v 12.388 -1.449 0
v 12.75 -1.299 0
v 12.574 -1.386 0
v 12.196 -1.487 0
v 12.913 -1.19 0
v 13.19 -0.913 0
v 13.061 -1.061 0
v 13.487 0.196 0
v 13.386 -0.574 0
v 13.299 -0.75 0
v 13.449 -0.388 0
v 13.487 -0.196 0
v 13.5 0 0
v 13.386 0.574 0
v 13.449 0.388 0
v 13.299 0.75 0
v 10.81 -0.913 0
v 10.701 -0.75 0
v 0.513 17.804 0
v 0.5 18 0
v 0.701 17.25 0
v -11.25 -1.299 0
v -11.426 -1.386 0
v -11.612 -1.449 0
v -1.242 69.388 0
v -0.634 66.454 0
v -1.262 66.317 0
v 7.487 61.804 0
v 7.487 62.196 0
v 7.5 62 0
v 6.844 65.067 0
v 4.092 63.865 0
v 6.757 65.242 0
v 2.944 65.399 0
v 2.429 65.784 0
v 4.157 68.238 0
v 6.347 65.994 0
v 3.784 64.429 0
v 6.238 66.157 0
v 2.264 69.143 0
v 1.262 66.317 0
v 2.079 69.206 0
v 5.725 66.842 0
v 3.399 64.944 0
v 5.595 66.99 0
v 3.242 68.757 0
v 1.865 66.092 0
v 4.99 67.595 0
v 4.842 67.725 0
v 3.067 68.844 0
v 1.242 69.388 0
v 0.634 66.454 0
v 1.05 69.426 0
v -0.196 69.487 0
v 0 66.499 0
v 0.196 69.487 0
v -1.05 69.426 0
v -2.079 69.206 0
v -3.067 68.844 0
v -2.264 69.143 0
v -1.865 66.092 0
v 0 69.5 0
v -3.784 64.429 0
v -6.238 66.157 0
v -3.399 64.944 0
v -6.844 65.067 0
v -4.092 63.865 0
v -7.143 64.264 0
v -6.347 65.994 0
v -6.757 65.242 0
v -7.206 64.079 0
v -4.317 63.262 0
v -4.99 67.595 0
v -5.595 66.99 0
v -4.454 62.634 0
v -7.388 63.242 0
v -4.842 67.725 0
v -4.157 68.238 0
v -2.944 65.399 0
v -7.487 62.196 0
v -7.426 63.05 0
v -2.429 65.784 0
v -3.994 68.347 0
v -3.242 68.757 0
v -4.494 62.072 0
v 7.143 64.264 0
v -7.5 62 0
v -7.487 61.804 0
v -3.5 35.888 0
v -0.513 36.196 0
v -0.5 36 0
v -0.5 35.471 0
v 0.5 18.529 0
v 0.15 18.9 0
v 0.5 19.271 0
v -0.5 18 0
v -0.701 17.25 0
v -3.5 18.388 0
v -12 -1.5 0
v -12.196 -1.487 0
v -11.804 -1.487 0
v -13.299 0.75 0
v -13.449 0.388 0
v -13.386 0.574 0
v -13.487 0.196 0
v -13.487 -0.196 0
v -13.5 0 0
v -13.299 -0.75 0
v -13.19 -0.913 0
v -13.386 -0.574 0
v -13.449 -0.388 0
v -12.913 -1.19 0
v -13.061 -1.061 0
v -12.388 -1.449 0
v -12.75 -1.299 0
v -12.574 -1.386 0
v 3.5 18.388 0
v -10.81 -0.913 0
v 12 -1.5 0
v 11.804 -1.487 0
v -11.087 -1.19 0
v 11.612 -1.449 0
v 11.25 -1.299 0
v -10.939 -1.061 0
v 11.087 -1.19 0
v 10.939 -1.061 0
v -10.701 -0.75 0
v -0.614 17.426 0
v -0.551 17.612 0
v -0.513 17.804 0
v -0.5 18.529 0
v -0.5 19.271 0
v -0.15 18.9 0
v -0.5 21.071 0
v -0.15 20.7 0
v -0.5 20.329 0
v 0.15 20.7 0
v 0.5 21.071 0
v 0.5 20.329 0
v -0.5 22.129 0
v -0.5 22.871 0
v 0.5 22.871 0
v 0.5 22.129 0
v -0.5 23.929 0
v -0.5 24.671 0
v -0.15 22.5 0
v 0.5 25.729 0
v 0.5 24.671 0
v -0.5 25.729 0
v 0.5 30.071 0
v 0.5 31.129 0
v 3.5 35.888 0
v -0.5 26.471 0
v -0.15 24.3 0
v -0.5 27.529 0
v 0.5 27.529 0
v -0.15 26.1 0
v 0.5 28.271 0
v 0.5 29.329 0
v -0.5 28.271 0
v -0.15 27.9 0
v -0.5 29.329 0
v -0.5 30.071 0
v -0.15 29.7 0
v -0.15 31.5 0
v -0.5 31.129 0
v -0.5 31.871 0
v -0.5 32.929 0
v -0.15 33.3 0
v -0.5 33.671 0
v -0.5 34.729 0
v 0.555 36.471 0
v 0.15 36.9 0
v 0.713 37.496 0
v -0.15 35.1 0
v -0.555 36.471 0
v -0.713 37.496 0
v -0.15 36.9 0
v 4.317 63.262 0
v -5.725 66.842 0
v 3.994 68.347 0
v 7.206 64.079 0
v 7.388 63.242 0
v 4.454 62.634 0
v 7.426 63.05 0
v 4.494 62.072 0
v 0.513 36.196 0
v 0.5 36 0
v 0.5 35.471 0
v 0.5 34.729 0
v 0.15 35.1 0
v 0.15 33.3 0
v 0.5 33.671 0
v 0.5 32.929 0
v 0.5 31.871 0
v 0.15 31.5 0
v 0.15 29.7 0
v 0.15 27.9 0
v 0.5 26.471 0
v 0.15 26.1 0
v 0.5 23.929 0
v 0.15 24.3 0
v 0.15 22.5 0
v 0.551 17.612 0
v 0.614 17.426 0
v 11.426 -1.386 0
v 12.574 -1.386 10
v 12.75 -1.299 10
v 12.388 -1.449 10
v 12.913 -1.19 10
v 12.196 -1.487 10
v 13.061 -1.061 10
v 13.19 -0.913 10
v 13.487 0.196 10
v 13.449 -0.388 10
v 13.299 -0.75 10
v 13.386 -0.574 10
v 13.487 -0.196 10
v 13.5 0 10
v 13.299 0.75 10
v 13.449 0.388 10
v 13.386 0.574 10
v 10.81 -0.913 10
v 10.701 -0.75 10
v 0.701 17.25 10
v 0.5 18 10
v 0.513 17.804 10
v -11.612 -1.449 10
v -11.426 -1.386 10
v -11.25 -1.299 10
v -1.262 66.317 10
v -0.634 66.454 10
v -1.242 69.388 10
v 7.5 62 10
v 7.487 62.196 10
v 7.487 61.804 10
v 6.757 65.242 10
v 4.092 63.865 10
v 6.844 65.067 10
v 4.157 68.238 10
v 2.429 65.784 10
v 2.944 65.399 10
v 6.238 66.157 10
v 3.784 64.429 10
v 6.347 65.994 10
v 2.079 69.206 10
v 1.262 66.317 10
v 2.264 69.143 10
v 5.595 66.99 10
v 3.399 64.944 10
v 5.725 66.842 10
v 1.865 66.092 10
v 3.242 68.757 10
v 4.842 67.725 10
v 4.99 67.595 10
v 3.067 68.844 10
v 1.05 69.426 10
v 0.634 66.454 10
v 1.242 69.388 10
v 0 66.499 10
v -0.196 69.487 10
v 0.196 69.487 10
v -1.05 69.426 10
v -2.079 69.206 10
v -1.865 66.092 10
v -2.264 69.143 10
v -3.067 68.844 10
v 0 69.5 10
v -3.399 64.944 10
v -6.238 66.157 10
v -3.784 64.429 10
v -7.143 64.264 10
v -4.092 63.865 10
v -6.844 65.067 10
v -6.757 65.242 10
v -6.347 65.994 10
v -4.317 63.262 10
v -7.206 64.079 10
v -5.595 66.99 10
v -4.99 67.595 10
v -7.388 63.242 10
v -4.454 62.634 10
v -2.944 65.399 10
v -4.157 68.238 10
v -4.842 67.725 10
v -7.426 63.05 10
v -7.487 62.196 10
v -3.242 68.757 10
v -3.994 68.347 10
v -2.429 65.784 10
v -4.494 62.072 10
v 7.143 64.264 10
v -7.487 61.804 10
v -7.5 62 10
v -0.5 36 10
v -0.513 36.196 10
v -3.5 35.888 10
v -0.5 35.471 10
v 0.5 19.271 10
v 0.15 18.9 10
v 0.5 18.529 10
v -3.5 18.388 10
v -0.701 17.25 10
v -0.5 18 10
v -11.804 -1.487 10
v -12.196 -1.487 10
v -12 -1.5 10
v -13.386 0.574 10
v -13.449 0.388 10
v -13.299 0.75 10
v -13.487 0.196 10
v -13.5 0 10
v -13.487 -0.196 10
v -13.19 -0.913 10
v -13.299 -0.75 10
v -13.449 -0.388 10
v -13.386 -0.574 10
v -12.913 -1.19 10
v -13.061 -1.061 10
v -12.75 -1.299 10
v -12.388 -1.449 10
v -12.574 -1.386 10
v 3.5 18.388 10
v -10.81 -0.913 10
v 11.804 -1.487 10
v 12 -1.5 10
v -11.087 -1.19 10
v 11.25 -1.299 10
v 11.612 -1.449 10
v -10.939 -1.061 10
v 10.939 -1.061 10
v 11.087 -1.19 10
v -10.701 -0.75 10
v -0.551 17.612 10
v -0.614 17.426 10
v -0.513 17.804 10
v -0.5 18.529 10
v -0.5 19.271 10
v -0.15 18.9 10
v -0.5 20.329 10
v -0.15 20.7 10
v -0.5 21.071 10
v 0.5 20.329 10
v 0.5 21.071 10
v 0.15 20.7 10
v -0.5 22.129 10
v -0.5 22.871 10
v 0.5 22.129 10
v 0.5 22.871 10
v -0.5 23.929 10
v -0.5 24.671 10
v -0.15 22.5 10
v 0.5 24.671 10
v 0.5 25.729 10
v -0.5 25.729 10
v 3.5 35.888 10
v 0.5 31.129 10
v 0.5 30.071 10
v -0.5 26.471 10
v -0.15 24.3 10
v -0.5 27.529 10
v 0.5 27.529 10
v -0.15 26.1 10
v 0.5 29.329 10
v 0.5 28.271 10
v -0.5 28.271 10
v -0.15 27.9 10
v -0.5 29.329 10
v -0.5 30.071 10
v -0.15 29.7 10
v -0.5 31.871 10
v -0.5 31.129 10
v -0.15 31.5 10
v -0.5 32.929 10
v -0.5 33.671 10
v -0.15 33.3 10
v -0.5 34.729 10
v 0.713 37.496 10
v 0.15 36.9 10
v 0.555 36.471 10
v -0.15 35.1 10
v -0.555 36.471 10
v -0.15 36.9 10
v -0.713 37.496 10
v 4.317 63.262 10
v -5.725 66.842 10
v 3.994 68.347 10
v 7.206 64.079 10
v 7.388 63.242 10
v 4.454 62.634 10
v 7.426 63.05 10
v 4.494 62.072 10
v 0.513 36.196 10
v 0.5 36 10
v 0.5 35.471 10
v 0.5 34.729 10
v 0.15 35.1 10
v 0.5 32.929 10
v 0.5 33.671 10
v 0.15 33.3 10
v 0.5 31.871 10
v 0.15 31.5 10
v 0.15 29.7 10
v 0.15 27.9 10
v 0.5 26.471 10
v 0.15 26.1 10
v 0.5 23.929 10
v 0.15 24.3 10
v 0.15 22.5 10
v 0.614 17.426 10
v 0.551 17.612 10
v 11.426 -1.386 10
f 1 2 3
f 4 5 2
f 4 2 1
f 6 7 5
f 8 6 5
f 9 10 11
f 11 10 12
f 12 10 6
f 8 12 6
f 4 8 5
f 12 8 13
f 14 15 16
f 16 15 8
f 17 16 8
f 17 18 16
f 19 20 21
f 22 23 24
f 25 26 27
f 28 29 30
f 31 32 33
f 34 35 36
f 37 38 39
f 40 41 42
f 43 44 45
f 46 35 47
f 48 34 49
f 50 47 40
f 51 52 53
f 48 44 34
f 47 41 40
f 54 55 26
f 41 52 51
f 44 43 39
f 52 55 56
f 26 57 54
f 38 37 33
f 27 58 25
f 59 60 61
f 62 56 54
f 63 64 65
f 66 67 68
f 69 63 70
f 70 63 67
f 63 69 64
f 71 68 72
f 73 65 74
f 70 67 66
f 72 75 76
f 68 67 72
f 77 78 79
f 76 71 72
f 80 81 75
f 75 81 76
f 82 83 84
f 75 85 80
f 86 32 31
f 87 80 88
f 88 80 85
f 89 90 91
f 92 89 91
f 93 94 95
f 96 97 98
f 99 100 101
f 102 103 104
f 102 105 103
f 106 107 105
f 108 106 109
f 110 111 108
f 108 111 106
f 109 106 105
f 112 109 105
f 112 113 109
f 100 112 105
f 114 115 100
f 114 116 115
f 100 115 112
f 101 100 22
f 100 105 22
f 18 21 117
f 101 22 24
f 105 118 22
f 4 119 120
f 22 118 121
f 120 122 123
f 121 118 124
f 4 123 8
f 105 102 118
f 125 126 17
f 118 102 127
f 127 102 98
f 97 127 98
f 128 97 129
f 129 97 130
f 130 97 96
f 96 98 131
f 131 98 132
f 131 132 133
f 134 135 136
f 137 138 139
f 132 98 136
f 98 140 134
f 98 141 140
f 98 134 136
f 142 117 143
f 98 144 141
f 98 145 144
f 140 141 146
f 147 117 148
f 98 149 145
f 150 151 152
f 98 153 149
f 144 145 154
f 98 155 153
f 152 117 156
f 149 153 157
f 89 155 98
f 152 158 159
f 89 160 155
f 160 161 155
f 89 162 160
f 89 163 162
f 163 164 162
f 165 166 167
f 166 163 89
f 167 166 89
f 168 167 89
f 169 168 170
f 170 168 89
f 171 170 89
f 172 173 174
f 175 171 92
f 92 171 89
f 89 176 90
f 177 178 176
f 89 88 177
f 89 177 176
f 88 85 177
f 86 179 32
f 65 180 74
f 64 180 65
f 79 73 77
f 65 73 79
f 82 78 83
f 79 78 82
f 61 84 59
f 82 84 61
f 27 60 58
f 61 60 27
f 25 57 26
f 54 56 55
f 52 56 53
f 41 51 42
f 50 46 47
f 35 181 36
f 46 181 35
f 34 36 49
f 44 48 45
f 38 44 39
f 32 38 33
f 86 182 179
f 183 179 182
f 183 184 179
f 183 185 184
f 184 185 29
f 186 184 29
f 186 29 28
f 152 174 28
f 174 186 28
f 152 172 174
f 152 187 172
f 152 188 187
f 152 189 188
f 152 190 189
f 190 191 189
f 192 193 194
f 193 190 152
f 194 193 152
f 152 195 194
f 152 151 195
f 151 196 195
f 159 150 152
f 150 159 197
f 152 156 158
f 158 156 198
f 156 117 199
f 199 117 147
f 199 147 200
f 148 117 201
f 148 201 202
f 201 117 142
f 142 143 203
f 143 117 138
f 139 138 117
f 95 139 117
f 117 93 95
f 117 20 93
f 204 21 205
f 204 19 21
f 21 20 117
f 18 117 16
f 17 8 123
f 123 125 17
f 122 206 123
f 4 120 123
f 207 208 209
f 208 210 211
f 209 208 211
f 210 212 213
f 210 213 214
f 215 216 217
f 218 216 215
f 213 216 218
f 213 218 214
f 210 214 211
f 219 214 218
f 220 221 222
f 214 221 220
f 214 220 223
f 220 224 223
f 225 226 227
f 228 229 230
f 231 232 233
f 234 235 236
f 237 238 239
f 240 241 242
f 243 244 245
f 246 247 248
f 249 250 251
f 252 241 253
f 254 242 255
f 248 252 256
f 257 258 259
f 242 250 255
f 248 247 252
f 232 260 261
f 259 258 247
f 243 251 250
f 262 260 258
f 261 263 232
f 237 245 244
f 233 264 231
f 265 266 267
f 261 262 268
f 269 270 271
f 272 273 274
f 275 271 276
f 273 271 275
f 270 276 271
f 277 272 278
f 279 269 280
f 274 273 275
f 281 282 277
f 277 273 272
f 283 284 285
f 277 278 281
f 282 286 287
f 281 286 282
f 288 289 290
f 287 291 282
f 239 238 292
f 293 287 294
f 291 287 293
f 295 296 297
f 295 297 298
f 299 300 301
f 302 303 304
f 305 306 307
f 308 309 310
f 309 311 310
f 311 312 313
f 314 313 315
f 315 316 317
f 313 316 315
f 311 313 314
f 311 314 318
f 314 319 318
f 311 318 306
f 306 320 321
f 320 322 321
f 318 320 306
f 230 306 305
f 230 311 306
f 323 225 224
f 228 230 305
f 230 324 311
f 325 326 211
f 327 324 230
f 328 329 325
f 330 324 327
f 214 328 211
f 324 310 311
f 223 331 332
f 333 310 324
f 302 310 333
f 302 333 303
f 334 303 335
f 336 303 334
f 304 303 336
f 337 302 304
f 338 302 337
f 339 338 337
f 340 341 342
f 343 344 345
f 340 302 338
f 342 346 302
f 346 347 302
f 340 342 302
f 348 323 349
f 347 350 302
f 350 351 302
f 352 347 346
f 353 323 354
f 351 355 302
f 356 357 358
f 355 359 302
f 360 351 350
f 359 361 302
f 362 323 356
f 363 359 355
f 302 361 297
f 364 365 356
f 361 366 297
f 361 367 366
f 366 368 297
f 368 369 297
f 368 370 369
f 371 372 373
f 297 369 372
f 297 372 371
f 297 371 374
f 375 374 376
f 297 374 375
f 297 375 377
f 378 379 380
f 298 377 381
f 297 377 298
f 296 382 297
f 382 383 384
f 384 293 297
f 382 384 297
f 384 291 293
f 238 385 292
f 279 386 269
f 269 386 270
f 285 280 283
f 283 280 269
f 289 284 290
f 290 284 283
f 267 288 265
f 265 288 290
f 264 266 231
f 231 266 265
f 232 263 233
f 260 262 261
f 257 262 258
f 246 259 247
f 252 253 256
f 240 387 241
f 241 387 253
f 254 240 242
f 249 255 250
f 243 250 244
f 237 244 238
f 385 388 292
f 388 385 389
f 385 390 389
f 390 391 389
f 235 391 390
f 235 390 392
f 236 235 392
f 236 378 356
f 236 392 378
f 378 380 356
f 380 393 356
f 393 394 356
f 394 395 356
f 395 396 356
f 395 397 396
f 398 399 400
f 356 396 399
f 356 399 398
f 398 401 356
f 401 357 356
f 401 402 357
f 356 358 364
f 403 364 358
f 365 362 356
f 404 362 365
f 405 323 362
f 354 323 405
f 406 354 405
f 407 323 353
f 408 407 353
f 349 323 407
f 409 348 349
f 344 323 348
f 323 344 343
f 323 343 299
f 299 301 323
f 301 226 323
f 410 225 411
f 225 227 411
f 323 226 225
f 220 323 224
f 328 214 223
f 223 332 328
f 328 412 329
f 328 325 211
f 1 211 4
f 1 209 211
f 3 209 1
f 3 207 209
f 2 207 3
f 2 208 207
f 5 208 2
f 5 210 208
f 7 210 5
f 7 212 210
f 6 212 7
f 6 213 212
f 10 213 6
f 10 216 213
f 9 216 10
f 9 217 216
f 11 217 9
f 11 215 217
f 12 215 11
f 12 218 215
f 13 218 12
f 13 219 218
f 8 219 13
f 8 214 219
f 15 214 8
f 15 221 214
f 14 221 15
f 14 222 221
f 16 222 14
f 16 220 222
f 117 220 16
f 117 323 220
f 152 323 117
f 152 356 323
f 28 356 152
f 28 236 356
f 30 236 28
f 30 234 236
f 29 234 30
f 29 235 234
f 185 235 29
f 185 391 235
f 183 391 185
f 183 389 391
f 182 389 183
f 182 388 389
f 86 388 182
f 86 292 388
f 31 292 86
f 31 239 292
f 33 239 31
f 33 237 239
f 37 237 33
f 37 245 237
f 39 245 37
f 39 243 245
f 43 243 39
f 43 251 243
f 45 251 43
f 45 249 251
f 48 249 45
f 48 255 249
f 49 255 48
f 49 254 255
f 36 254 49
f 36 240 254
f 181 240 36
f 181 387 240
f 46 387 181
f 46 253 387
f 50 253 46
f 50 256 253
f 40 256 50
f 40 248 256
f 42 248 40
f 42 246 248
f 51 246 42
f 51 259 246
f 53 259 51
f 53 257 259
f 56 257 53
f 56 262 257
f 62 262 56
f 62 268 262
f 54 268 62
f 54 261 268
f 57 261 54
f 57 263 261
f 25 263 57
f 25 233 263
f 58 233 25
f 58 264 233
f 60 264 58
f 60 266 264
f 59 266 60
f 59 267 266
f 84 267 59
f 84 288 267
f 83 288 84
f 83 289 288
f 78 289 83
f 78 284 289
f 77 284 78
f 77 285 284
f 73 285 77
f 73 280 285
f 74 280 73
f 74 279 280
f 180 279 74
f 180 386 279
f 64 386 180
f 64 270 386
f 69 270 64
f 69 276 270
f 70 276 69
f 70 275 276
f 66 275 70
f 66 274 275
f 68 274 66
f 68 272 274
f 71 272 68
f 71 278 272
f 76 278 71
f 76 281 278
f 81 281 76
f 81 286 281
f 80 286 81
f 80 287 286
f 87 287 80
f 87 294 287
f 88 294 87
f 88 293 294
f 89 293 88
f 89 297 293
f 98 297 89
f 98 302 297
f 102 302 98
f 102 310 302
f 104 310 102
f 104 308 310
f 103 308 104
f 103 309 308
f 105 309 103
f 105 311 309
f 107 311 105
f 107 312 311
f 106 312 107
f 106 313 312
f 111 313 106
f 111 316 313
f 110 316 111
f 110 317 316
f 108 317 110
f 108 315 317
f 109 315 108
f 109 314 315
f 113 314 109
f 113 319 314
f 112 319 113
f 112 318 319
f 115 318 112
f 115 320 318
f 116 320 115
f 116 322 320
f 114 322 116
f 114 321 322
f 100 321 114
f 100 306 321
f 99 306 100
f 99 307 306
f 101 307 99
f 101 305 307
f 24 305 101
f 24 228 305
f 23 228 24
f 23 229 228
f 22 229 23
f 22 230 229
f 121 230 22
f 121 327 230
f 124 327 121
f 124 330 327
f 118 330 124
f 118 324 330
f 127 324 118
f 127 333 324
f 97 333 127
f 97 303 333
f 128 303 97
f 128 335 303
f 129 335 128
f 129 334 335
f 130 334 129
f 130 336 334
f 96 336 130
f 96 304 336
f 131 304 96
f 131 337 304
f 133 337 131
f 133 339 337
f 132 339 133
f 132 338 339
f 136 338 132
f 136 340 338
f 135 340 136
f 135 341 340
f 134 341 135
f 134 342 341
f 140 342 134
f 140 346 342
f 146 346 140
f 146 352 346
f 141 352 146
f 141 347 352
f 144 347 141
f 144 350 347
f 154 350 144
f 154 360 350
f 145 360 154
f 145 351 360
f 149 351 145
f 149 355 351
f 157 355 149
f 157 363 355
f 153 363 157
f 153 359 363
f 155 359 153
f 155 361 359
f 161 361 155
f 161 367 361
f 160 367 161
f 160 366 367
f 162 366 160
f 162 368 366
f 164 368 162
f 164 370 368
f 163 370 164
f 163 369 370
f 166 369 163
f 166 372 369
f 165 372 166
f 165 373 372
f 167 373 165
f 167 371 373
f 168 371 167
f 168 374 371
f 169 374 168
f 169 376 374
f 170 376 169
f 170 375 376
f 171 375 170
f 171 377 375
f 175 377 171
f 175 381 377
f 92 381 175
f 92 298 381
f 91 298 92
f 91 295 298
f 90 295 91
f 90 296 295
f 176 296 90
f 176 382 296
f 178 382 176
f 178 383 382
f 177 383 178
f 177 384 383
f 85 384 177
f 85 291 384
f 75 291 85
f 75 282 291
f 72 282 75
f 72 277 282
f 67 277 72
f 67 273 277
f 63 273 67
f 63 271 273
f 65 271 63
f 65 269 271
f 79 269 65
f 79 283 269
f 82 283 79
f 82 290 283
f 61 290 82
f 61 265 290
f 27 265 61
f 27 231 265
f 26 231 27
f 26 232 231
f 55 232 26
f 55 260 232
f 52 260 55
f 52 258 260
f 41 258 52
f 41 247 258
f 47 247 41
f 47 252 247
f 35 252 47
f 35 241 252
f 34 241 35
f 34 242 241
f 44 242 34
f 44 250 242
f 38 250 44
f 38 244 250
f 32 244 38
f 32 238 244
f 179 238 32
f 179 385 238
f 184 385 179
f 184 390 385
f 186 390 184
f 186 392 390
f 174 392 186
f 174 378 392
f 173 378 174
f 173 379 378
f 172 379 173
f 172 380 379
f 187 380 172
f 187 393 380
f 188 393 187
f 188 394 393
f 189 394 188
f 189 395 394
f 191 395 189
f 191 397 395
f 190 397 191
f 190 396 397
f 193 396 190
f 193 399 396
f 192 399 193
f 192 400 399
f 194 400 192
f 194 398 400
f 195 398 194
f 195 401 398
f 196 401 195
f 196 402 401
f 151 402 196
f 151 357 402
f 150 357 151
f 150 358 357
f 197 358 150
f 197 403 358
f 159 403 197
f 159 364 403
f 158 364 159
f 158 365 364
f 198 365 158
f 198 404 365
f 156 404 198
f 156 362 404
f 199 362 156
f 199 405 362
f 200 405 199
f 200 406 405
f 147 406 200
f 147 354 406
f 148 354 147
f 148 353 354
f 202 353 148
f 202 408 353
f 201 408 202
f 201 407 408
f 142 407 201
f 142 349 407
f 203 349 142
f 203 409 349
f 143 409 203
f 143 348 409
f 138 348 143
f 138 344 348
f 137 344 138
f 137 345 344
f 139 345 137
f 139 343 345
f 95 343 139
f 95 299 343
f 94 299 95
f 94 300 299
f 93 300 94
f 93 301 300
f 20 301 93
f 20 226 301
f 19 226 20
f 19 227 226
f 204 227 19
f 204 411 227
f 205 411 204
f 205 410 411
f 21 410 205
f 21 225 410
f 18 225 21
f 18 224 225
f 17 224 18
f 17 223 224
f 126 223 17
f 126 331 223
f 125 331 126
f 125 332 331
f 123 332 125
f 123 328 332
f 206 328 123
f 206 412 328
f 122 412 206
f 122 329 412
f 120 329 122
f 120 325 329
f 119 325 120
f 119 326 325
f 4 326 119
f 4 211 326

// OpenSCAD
// bagclip_hairpin — copied from Bag_Clip_1.1.stl. A vertical hairpin clip: a top
// LOOP spring (open DOWNWARD toward the jaws so the legs can flex), two legs, and
// serrated V JAWS at the bottom that sit nearly closed and grip the bag. The
// splayed feet are the lead-in / finger grip — push the bag into the V (or pinch
// the feet) and the legs flex about the top loop; release and it clamps.
//
// Flat profile extruded along Z; prints flat, support-free; legs flex in-plane.

/* [Size] */
clip_h   = 68;    // height (Y)
foot_w   = 12;    // half-width at the splayed feet (bottom)
arm_t    = 3.0;   // leg thickness
bite     = 10;    // Z depth

/* [Loop spring] */
r_loop   = 6;     // top loop bend radius (legs sit at +/- r_loop up top)

/* [Jaws] */
jaw_lo   = 18;    // jaw bottom (Y)
jaw_len  = 18;    // parallel serrated jaw length
jg       = 2.0;   // jaw centerline offset from middle (small -> grips)
tooth_d  = 0.35;  // tooth bite
tooth_p  = 1.8;   // tooth pitch

$fn = 48;

function arc(c, r, a0, a1, n) =
  [ for (i=[0:n]) [ c[0]+r*cos(a0+(a1-a0)*i/n), c[1]+r*sin(a0+(a1-a0)*i/n) ] ];

module ribbon(p, t) {
  for (i = [0 : len(p)-2])
    hull() { translate(p[i]) circle(d=t); translate(p[i+1]) circle(d=t); }
}

// folded-ribbon centerline: foot -> jaw -> leg -> loop -> leg -> jaw -> foot
centerline = concat(
  [ [-foot_w, 0], [-jg, jaw_lo], [-jg, jaw_lo+jaw_len], [-r_loop, clip_h - r_loop] ],
  arc([0, clip_h - r_loop], r_loop, 180, 0, 22),
  [ [r_loop, clip_h - r_loop], [jg, jaw_lo+jaw_len], [jg, jaw_lo], [foot_w, 0] ]
);

// vertical sawtooth on a jaw inner face at x=fx, biting toward dir
module teeth(fx, dir) {
  for (y = [jaw_lo : tooth_p : jaw_lo + jaw_len])
    polygon([[fx - dir*0.5, y], [fx + dir*tooth_d, y + tooth_p/2], [fx - dir*0.5, y + tooth_p]]);
}

module clip2d() {
  union() {
    ribbon(centerline, arm_t);
    teeth(-jg + arm_t/2, +1);   // left jaw inner face, teeth point right
    teeth( jg - arm_t/2, -1);   // right jaw inner face, teeth point left
  }
}

linear_extrude(bite) clip2d();
